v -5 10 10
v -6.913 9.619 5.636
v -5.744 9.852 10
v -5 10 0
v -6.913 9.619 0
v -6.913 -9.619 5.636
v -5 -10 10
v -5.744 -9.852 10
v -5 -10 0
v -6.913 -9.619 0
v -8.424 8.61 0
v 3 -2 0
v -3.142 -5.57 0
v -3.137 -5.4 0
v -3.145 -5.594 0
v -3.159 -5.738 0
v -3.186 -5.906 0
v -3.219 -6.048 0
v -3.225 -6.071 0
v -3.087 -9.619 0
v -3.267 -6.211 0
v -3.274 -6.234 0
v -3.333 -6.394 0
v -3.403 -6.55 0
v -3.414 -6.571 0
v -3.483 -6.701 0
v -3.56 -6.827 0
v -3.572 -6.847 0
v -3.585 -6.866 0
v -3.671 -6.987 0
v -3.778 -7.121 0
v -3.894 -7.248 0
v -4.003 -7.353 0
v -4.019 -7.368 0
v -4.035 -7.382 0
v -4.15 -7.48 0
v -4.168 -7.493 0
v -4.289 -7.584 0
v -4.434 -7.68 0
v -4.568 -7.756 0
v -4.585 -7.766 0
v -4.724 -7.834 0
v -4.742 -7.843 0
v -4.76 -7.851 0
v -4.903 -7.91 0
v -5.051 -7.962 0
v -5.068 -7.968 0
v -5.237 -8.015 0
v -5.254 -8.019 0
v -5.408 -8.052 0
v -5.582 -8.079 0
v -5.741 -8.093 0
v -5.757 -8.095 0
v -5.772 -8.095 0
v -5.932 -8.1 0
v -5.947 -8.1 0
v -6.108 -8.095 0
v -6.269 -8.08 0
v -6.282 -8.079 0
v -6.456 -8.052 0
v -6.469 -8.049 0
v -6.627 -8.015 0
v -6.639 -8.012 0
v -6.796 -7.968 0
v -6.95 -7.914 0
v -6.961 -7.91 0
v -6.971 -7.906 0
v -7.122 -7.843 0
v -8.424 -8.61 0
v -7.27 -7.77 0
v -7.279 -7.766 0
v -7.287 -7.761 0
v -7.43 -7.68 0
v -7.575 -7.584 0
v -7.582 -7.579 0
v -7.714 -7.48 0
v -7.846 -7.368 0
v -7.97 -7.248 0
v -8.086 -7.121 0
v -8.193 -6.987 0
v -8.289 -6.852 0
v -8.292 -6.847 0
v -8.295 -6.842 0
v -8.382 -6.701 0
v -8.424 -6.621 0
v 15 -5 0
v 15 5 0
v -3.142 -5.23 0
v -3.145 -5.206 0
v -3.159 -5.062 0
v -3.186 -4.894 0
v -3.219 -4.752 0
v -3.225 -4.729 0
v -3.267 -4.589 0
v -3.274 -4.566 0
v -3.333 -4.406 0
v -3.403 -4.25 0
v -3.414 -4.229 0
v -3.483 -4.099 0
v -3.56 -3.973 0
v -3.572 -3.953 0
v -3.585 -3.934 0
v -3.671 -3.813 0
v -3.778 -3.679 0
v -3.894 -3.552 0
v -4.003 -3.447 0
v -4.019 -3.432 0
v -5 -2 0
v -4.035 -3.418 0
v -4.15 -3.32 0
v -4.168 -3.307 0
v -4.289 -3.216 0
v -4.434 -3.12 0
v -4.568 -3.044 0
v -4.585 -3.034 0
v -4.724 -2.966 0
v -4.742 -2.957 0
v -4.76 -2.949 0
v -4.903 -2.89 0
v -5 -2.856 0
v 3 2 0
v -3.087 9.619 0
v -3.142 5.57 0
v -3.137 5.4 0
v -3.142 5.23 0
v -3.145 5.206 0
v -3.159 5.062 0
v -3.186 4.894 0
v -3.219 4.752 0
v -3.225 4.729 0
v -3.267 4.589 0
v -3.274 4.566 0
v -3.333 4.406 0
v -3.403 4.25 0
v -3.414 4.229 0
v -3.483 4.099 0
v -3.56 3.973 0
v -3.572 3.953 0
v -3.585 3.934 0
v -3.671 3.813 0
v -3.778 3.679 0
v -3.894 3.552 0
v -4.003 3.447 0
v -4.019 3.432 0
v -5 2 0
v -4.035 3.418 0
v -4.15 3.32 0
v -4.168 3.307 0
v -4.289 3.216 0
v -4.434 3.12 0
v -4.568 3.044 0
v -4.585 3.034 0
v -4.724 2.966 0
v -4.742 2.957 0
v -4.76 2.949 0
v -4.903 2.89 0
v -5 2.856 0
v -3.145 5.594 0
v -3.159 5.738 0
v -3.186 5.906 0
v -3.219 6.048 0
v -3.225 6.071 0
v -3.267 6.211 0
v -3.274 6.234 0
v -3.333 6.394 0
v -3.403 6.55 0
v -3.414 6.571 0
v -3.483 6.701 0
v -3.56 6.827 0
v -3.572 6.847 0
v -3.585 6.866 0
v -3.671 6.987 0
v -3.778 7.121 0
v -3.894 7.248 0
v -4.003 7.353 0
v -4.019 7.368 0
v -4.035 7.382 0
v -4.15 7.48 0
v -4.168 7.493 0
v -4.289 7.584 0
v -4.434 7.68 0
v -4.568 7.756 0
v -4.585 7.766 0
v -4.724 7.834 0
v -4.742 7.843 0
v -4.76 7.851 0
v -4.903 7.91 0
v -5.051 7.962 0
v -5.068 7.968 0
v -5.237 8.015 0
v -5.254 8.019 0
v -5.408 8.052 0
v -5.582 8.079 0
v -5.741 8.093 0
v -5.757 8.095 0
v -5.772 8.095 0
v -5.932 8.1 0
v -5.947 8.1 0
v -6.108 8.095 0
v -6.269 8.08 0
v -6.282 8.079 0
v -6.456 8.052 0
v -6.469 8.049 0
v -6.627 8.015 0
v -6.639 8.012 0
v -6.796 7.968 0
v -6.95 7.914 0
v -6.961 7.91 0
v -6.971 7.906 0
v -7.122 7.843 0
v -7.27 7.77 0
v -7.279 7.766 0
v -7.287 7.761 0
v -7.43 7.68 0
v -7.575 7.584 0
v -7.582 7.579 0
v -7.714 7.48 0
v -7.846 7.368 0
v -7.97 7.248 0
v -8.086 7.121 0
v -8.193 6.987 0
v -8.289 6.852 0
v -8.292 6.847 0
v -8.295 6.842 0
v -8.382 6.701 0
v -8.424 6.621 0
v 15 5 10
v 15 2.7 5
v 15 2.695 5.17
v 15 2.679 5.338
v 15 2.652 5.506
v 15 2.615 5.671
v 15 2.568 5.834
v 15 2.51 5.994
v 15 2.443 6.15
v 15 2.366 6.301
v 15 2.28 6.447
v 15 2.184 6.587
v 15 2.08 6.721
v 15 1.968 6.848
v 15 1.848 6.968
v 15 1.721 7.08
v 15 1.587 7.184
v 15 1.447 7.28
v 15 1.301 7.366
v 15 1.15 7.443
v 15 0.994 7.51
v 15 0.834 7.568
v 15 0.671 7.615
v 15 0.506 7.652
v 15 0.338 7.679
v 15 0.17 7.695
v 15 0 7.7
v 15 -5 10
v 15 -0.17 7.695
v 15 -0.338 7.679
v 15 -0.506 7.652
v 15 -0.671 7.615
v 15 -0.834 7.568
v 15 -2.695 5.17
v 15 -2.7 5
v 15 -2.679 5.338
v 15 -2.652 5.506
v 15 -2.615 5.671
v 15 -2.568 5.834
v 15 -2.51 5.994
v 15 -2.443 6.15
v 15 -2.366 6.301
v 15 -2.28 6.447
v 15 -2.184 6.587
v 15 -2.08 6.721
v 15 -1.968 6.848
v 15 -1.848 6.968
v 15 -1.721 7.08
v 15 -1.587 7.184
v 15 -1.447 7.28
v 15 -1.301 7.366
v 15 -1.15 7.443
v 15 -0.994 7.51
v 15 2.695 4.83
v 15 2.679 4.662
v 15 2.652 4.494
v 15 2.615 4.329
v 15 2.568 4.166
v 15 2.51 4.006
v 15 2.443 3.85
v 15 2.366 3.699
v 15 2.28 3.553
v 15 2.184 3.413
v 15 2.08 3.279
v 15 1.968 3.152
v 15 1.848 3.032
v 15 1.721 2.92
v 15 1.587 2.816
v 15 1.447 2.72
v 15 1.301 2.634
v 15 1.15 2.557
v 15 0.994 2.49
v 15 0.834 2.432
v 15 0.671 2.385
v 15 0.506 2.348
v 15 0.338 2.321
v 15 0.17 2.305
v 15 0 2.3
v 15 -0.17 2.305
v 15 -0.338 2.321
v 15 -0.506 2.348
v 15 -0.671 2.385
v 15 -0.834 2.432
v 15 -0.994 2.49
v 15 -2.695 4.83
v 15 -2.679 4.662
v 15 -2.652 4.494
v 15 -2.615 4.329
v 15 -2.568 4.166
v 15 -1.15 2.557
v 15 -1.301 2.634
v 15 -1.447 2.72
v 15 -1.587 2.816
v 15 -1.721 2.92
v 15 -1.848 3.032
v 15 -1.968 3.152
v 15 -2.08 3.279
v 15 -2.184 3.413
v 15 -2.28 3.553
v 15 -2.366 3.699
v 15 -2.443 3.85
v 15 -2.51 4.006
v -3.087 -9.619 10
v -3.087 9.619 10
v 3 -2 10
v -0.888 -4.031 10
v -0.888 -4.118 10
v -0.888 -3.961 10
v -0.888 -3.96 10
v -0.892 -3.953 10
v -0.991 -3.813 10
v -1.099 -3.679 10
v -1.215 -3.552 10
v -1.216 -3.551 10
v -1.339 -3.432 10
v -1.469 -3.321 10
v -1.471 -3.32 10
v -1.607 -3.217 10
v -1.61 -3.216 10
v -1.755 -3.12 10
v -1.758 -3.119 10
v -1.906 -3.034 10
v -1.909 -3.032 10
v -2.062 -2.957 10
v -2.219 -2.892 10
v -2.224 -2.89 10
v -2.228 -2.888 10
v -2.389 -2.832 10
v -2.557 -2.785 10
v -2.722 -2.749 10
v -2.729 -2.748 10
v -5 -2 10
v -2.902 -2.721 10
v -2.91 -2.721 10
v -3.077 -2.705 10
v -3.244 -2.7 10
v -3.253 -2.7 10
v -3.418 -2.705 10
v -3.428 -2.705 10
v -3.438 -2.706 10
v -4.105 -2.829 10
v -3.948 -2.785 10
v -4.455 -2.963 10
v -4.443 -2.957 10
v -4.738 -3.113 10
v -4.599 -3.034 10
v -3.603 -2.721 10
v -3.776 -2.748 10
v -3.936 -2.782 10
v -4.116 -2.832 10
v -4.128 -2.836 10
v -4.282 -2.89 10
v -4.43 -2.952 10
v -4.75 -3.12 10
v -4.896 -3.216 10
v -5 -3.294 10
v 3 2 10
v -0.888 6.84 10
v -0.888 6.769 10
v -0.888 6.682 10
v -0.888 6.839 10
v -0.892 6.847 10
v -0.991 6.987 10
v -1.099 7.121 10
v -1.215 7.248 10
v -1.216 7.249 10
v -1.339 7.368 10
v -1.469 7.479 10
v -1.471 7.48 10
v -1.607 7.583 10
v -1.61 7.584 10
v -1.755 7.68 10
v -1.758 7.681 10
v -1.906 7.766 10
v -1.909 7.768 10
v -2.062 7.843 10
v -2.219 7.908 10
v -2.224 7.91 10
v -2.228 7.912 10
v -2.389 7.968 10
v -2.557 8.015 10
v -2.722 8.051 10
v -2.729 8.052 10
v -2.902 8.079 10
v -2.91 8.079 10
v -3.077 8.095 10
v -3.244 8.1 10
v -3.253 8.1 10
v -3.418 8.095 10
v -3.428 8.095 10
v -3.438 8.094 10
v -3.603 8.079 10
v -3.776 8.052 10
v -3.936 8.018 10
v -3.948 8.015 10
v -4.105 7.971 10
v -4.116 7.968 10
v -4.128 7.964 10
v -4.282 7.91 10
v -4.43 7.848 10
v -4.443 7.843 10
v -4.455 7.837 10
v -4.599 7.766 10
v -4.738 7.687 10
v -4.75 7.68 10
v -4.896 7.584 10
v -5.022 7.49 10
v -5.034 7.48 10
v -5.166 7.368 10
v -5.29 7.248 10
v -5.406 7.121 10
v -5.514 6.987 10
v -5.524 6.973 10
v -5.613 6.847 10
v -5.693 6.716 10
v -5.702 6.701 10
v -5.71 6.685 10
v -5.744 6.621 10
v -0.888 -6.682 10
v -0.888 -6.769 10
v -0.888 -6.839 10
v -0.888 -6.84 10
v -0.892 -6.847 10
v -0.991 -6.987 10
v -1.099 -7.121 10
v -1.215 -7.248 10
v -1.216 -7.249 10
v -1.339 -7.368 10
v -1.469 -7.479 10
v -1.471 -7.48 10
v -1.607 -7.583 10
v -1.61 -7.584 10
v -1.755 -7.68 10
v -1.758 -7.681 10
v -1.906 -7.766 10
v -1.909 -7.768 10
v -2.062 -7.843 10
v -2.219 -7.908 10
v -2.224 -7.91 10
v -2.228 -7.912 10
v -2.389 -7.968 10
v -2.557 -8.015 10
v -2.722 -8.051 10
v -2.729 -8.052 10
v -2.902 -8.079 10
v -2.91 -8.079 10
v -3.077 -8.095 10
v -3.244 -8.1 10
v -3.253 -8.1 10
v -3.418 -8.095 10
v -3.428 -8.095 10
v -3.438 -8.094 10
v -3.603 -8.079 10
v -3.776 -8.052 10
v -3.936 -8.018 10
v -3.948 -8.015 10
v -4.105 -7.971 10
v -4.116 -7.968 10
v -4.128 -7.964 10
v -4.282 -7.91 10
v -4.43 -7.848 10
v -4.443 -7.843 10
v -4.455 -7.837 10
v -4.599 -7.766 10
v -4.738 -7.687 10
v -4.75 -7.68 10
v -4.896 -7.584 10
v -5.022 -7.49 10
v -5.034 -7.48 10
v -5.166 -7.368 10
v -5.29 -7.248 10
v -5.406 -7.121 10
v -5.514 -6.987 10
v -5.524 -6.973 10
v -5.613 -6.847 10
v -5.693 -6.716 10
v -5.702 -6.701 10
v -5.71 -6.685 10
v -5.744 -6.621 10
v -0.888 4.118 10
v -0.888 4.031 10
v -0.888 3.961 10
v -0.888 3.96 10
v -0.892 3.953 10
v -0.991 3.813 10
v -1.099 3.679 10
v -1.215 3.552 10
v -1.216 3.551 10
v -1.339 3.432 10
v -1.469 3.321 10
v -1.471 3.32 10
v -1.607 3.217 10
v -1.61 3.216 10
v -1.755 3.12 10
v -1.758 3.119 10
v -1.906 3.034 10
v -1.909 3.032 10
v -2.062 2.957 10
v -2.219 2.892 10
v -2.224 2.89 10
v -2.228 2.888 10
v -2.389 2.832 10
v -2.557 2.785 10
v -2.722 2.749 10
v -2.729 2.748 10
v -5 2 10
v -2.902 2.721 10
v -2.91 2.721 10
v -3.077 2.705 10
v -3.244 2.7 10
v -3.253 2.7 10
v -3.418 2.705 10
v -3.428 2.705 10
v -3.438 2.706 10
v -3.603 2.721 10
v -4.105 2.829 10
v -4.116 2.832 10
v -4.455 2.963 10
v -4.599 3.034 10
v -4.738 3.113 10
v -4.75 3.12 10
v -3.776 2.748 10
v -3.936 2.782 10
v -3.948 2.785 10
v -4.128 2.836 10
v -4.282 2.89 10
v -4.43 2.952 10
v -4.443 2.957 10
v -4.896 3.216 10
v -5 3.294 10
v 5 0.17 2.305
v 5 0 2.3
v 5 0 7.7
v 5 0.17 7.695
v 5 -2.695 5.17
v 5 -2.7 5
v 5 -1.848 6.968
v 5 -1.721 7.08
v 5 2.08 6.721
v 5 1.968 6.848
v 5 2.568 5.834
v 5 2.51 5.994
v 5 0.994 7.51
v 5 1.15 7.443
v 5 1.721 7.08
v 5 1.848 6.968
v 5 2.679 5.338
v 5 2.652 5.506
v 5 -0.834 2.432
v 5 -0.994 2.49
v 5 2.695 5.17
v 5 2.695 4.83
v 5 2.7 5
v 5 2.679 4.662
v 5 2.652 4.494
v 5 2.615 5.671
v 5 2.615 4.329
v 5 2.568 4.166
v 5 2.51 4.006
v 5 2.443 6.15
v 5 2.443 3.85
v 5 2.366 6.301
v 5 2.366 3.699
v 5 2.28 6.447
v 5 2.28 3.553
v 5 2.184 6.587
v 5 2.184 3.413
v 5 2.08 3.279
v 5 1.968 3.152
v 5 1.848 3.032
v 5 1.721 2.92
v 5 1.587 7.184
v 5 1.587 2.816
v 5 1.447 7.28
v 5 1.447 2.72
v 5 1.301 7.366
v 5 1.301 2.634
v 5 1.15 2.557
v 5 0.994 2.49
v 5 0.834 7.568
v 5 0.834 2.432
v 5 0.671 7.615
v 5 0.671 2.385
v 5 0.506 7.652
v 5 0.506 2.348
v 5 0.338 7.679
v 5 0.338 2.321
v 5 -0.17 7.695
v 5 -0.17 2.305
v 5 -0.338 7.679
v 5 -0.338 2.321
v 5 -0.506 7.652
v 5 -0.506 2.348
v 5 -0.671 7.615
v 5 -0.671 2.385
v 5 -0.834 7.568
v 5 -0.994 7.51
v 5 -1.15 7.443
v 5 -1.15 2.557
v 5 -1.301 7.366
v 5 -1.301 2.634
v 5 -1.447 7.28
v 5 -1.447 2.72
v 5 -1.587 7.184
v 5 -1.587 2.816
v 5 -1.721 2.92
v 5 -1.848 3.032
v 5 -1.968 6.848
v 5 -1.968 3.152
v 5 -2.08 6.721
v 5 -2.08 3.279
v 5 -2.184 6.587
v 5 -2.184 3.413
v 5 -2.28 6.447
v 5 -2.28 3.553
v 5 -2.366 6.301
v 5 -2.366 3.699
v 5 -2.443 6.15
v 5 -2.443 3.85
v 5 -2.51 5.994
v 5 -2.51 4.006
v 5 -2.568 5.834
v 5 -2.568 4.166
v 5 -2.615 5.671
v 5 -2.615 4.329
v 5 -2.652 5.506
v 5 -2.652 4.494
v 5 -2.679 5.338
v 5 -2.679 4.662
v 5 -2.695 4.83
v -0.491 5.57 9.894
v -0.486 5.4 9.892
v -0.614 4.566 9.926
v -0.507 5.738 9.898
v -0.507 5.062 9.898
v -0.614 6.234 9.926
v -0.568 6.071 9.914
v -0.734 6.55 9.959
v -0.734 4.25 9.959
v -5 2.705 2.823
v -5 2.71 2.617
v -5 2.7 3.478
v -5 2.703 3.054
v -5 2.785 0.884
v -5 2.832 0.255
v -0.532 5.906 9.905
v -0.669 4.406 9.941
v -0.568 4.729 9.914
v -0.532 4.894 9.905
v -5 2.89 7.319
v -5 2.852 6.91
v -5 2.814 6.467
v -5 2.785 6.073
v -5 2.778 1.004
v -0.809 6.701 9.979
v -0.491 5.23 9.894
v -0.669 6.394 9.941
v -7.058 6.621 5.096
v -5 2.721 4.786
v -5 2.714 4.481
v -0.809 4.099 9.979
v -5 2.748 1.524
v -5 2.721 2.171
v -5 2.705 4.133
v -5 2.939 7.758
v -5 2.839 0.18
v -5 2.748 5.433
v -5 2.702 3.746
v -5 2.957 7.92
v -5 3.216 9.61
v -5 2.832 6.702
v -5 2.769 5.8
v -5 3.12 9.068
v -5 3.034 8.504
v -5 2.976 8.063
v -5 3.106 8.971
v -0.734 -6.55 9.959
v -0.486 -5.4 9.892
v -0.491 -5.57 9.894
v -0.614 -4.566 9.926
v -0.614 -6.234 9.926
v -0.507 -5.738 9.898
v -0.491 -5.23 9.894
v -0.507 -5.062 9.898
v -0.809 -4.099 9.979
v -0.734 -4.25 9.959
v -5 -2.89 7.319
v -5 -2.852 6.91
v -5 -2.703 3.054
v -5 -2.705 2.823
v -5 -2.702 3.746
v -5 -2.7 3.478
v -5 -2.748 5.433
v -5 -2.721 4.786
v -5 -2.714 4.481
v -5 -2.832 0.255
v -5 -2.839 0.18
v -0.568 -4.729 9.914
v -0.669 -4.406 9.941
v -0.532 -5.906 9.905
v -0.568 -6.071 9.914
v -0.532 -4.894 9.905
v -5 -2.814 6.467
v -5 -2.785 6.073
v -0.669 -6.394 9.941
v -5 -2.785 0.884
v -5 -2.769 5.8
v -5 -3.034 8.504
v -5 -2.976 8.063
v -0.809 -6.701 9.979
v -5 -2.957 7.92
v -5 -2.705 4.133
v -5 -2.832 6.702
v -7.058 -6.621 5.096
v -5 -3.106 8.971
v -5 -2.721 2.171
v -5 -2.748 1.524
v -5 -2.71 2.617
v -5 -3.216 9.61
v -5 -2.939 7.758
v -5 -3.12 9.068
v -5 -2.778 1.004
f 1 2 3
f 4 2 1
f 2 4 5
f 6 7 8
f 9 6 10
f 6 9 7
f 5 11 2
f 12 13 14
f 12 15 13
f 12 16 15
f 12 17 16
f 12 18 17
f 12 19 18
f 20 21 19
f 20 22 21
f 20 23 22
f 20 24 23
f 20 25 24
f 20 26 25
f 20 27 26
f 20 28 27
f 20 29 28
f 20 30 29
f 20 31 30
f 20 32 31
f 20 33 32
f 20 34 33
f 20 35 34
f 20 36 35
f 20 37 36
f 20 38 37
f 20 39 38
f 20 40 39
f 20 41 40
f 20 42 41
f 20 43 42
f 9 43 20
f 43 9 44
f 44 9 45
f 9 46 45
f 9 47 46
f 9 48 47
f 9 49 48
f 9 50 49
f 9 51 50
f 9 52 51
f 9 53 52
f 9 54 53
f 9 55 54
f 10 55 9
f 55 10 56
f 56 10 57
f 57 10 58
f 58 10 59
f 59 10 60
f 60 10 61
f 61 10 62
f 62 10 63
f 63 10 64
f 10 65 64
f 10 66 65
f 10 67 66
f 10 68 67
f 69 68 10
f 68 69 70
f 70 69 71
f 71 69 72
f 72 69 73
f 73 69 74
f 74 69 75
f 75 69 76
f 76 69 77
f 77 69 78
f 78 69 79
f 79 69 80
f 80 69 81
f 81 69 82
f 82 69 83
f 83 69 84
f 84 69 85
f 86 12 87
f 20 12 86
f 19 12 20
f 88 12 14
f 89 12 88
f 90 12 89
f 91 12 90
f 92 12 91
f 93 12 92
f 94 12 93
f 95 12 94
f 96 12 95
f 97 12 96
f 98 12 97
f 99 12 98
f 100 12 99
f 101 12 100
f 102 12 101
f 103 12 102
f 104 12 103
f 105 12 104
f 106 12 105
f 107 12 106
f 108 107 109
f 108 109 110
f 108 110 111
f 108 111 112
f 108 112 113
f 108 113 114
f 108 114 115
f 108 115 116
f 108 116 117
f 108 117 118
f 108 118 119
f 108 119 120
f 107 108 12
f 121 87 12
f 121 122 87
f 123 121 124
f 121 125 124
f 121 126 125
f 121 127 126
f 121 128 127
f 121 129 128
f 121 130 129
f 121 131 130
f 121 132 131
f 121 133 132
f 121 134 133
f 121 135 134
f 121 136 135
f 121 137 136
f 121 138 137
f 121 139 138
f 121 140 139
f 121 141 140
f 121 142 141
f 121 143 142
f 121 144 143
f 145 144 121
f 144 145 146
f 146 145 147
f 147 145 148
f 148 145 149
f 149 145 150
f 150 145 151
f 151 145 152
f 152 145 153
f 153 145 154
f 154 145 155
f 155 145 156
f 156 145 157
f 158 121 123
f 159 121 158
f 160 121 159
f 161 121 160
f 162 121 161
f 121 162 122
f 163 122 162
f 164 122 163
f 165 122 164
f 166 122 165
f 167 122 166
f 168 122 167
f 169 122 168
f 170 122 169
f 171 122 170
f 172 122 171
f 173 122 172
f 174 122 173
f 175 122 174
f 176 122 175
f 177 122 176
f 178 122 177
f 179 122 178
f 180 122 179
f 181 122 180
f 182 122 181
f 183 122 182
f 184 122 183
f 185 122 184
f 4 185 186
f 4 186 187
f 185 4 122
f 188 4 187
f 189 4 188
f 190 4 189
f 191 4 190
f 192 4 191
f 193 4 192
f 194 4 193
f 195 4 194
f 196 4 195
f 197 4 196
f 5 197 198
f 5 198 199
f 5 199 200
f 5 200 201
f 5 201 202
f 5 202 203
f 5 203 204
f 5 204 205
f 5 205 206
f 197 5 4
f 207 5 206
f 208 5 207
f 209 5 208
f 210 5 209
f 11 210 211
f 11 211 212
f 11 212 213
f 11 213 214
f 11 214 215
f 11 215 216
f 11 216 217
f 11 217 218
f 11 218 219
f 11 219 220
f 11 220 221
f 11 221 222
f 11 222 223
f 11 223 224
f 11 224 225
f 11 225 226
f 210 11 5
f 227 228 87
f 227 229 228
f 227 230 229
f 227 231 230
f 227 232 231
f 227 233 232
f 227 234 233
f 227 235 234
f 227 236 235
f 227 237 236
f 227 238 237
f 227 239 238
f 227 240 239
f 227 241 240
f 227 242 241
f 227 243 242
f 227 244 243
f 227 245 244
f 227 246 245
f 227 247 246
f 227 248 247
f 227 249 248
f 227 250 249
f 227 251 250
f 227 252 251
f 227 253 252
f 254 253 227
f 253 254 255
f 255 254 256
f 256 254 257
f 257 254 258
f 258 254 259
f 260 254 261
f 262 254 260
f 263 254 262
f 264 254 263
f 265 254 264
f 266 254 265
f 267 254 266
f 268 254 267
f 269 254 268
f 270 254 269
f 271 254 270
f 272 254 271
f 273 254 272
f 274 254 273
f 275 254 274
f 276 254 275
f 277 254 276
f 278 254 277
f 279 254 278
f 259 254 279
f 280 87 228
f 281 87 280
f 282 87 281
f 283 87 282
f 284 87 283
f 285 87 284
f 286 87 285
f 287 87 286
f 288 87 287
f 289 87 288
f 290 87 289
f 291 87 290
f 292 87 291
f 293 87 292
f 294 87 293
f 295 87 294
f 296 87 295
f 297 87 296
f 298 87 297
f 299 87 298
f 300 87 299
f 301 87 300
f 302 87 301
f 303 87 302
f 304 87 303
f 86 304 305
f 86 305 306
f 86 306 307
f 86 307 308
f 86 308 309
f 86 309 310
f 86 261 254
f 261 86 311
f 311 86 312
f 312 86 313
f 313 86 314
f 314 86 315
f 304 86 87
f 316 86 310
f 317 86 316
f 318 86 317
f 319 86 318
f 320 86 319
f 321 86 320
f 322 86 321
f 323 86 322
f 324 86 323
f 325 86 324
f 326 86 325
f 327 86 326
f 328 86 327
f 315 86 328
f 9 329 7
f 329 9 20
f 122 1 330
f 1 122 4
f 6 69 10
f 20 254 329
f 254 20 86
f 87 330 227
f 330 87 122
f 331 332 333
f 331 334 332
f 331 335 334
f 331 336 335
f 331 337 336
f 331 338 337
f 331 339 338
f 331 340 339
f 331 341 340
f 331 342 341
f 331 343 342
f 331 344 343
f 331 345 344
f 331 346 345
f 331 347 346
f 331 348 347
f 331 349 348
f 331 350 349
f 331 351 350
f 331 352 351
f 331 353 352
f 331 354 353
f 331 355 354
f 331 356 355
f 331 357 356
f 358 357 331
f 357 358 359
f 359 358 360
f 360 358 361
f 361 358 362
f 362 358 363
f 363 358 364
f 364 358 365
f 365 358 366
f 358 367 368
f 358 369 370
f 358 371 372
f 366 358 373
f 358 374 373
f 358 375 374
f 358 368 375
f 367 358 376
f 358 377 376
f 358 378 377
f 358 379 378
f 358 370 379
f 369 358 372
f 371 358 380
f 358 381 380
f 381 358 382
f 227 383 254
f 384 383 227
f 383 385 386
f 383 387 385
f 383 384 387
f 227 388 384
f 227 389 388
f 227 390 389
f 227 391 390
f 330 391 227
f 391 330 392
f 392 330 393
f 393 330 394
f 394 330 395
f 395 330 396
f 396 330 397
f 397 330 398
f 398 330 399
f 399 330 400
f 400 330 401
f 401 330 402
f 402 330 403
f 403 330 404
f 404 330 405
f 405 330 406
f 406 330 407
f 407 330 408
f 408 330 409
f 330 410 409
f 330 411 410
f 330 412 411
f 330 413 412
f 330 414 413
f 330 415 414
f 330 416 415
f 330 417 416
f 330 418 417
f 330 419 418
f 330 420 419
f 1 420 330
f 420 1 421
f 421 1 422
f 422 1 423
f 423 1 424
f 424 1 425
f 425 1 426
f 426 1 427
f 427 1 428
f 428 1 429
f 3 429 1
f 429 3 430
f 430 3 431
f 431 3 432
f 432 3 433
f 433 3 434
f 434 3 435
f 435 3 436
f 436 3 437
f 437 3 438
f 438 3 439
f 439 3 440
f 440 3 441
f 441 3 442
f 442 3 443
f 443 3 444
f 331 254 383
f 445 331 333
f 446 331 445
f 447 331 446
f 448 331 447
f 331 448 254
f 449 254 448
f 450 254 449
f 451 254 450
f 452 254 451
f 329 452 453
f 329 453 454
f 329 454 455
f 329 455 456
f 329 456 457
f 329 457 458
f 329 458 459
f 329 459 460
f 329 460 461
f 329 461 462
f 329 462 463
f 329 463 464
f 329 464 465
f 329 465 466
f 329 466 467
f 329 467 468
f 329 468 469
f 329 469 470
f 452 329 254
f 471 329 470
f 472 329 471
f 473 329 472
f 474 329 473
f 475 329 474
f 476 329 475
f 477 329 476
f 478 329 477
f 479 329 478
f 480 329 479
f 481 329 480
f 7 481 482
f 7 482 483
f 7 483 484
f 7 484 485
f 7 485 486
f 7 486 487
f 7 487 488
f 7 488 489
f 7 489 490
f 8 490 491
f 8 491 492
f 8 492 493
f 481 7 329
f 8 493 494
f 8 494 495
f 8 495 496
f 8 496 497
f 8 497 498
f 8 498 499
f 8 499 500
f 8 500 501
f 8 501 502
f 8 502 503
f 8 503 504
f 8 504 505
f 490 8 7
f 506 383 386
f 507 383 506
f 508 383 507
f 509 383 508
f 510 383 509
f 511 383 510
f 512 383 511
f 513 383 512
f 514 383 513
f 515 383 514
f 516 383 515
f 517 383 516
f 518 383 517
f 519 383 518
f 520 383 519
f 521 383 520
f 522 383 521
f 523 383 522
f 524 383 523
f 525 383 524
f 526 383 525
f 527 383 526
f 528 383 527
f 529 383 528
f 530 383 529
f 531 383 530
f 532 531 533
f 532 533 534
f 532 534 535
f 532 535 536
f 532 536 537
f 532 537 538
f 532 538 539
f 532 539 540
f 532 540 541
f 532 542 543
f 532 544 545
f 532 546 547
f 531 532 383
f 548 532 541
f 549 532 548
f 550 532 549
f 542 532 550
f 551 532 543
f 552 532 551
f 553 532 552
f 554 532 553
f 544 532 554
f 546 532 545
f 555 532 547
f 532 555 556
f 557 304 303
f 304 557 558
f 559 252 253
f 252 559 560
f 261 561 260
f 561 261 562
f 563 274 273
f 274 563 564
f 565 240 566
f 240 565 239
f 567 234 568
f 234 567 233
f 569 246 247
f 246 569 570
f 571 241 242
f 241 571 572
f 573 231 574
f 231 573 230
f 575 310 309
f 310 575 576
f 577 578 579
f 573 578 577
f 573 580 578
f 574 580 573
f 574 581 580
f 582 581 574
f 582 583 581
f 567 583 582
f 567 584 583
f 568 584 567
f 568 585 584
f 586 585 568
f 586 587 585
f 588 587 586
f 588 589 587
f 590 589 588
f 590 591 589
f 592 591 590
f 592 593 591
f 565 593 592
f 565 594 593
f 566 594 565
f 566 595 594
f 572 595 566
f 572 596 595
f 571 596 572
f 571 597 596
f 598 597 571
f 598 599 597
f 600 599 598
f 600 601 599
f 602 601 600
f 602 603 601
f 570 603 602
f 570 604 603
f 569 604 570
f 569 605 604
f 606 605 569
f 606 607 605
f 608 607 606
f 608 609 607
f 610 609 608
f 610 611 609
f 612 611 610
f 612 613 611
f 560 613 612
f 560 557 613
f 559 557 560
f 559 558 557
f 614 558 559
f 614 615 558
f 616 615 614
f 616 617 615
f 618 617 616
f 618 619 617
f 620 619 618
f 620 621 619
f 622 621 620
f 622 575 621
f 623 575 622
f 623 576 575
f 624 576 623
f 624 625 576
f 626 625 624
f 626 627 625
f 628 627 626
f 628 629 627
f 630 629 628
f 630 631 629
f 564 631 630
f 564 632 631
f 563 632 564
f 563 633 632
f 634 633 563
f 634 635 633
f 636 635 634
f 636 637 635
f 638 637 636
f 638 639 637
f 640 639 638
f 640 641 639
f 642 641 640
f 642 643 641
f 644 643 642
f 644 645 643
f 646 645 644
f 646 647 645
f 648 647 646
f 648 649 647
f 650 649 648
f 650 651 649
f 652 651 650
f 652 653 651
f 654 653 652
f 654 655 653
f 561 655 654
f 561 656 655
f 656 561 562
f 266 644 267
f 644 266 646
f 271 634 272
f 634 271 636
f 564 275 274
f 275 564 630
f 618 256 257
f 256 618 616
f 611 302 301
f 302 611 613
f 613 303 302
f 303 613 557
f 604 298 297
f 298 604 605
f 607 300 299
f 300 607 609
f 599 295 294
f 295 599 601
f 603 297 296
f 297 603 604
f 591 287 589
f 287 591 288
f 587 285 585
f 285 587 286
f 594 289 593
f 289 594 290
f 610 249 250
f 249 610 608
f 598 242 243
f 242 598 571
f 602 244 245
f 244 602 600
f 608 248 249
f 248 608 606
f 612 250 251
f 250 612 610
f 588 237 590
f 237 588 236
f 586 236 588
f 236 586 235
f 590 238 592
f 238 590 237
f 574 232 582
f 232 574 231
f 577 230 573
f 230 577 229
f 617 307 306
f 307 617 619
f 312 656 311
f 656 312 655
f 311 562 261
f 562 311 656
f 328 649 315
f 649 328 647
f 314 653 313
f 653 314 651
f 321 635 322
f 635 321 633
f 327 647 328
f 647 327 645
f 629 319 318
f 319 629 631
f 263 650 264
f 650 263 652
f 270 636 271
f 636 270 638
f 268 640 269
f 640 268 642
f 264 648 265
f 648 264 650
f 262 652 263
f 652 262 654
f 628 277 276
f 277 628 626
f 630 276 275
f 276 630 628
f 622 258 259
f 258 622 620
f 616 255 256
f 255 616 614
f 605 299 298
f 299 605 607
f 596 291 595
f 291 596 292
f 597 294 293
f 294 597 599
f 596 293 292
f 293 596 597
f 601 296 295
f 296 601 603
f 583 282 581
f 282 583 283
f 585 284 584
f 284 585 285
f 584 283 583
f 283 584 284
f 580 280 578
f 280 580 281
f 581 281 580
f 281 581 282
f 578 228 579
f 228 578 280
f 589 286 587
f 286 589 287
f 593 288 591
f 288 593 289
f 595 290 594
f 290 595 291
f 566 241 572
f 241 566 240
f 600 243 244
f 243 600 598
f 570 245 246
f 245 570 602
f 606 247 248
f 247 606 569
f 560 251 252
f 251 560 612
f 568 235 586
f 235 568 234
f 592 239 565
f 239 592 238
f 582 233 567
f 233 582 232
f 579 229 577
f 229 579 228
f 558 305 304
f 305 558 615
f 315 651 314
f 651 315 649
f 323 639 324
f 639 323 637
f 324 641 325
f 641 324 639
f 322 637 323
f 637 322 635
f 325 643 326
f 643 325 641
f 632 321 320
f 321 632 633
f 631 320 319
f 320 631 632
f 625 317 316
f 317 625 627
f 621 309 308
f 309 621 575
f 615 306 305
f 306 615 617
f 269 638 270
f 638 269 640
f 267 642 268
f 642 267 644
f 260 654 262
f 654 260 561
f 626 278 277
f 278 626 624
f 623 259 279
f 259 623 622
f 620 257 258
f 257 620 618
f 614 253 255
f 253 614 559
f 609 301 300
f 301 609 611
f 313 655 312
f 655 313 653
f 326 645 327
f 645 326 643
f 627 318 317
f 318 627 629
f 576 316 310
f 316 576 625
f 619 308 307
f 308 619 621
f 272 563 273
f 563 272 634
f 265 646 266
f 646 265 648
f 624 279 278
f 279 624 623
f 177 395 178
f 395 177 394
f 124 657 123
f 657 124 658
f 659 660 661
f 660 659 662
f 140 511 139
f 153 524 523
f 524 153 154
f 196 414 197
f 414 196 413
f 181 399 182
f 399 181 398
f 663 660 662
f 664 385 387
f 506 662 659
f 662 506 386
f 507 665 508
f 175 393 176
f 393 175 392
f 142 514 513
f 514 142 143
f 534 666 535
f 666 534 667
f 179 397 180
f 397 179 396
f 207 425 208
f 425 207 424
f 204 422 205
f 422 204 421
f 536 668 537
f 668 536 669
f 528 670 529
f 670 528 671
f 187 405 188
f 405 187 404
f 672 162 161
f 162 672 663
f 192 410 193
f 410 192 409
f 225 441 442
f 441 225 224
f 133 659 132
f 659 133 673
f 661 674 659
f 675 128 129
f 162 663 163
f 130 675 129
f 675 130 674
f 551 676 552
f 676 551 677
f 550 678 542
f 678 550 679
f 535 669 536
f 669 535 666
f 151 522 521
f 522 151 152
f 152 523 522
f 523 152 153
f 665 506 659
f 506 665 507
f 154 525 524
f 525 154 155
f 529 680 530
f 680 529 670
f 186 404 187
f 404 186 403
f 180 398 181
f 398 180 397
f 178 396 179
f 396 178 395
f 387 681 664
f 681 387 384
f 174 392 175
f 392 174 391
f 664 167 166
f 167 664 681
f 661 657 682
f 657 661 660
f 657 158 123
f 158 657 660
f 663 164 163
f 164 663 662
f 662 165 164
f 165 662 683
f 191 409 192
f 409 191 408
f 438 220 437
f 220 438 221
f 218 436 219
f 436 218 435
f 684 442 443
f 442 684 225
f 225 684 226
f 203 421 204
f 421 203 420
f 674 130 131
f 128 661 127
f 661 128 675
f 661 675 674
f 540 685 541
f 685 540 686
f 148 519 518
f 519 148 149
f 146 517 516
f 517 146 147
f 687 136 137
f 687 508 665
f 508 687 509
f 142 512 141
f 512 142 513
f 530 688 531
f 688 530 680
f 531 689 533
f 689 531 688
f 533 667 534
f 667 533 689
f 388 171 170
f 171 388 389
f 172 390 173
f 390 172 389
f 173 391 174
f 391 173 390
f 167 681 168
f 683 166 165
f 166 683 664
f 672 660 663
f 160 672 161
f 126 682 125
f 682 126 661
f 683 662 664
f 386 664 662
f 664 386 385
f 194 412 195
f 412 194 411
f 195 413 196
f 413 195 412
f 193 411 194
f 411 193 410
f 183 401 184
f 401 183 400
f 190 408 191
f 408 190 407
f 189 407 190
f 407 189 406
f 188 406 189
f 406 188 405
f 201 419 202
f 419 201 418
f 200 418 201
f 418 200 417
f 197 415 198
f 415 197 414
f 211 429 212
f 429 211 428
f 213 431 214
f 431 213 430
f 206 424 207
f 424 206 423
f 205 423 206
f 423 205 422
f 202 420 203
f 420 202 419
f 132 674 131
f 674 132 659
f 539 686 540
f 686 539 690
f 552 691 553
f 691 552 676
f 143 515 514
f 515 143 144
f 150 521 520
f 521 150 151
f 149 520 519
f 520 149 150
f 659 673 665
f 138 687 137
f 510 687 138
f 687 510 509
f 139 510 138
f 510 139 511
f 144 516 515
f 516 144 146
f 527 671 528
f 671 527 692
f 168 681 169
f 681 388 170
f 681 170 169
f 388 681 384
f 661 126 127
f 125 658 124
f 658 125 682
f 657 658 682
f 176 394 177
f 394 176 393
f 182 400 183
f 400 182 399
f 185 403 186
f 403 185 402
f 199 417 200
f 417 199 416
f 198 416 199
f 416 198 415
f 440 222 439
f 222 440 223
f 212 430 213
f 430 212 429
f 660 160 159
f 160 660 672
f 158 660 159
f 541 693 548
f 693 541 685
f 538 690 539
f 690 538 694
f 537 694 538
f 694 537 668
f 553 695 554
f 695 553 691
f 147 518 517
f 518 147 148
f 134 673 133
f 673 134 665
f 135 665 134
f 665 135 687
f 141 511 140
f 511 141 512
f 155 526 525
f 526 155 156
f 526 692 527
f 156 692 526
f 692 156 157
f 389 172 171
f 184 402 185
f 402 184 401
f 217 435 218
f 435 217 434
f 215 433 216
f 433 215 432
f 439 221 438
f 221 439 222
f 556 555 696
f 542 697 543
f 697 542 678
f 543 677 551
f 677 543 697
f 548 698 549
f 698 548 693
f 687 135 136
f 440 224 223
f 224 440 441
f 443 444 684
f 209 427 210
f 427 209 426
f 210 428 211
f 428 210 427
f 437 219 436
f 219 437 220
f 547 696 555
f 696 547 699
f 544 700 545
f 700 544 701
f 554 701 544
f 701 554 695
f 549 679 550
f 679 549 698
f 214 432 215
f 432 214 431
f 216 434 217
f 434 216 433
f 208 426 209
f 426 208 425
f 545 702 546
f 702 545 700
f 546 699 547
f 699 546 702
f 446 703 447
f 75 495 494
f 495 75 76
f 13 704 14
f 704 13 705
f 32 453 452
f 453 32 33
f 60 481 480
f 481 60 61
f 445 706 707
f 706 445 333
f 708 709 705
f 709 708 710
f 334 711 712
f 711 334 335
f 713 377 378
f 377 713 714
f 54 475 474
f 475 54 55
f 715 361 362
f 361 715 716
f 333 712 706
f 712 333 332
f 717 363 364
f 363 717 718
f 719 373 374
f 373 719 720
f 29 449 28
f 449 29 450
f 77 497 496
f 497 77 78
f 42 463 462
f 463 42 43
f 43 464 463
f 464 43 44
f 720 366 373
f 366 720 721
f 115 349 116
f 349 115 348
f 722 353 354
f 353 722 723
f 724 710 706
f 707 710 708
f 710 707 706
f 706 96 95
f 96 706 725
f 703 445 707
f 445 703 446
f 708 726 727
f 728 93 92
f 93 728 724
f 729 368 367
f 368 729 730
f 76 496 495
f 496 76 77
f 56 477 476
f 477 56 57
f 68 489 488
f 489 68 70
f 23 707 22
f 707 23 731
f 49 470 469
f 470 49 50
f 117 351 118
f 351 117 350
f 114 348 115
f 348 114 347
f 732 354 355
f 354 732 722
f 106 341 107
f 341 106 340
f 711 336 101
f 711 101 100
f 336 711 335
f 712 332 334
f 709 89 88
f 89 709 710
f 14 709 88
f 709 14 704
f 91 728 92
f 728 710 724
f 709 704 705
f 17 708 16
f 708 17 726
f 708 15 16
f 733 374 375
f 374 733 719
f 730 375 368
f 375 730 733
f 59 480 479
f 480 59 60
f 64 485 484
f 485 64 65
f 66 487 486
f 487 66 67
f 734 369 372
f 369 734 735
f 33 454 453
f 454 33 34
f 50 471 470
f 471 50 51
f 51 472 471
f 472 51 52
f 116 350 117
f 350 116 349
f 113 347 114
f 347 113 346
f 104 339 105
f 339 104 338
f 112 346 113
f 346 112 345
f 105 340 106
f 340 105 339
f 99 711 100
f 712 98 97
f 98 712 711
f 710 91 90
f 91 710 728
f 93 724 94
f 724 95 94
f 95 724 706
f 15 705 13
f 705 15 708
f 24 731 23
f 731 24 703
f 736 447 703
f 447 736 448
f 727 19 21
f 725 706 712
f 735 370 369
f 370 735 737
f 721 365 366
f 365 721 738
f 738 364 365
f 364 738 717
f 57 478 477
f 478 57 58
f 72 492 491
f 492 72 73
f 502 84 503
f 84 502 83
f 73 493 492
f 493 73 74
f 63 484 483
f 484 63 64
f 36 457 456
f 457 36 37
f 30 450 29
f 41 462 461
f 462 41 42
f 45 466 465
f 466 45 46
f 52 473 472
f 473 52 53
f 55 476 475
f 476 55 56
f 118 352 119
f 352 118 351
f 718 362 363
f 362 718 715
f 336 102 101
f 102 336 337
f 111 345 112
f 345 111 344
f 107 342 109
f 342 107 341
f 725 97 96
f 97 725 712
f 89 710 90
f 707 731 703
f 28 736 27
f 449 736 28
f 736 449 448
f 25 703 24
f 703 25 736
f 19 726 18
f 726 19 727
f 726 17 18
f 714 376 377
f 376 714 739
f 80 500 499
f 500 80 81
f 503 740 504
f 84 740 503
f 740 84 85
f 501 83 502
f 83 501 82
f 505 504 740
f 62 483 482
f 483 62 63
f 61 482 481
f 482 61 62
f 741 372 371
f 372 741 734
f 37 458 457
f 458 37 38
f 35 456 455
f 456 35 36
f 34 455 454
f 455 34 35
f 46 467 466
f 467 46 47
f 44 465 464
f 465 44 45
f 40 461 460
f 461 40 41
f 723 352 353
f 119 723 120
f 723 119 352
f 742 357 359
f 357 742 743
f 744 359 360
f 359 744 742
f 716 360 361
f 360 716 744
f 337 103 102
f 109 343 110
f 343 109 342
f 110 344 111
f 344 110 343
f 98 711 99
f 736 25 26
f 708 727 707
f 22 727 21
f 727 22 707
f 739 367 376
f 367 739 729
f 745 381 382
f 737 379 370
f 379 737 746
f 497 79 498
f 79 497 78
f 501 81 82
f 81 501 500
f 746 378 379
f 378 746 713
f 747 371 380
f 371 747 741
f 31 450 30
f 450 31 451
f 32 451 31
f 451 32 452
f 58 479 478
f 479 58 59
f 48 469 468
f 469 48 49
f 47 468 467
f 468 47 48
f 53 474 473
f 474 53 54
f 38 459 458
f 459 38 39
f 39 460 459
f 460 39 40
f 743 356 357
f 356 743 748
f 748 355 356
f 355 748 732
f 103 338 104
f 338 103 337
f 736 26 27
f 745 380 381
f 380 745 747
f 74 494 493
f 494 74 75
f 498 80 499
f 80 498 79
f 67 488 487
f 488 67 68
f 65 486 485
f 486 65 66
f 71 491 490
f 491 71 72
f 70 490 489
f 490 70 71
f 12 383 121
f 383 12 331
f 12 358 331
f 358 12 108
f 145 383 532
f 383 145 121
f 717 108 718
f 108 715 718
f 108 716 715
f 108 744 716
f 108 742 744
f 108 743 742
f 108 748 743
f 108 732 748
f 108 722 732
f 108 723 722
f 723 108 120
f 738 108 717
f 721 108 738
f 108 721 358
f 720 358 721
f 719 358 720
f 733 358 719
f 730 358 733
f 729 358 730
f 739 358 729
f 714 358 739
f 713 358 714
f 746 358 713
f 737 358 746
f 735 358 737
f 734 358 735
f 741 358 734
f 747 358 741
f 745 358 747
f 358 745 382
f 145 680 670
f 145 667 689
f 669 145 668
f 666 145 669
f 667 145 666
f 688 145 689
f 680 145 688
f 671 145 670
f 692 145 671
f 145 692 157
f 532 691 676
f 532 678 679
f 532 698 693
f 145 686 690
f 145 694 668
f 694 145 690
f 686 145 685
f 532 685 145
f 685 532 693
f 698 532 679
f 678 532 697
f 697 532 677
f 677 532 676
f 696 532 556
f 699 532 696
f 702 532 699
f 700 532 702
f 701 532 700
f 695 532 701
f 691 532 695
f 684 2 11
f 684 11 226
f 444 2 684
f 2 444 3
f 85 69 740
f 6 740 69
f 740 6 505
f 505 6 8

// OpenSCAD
radio_borde = 10/2;
radio_pajita = 5.4/2;
altura = 10;


difference() {
  difference() {
    soporte(altura);
    hueco_soporte();
  }
  aplanr_taladros();
  taladros_pagitas();
  quitar_material();
}




module soporte(altura) {
  posicion_soporte = [-5, 5, 0];
  hull() {
    translate(posicion_soporte)
    cylinder(r=radio_borde, h=altura);

    mirror([0, 1, 0])
      translate(posicion_soporte)
      cylinder(r=radio_borde, h=altura);

    translate([5, -5, 0])
      cube(size=[10, 10, altura]);
  }
}

module hueco_soporte() {
  profundidad_hueco_soporte = 15;
  rotate([0, 90, 0])
    translate([-5, 0, 5])
      cylinder(r=radio_pajita, h=profundidad_hueco_soporte, $fn=100);
}


module taladros_pagitas() {
  altura_taladro = 12;
  posicion_taladro = [-6.2, 5.4, -1];
    translate(posicion_taladro)
      rotate([0, 15, 0]) {
        cylinder(r=radio_pajita, h=altura_taladro, $fn=100);
      }

      mirror([0, 1, 0])
        translate(posicion_taladro)
          rotate([0, 15, 0]) {
            cylinder(r=radio_pajita, h=altura_taladro, $fn=100);
          }

}

module aplanr_taladros() {
  posicion_taladro = [-6.2, 5.4, -1];
    translate(posicion_taladro)
      translate([-7.4, -16, 1])
        color("blue") {
          rotate([0, 15, 0]) {
            cube(size=[5, 22, 14]);
          }
        }
}

module quitar_material() {
  translate([-17, -2, 0])
    cube(size=[20, 4, 10]);
  translate([-12, -5, 0])
    cube(size=[7, 10, 12]);
}
